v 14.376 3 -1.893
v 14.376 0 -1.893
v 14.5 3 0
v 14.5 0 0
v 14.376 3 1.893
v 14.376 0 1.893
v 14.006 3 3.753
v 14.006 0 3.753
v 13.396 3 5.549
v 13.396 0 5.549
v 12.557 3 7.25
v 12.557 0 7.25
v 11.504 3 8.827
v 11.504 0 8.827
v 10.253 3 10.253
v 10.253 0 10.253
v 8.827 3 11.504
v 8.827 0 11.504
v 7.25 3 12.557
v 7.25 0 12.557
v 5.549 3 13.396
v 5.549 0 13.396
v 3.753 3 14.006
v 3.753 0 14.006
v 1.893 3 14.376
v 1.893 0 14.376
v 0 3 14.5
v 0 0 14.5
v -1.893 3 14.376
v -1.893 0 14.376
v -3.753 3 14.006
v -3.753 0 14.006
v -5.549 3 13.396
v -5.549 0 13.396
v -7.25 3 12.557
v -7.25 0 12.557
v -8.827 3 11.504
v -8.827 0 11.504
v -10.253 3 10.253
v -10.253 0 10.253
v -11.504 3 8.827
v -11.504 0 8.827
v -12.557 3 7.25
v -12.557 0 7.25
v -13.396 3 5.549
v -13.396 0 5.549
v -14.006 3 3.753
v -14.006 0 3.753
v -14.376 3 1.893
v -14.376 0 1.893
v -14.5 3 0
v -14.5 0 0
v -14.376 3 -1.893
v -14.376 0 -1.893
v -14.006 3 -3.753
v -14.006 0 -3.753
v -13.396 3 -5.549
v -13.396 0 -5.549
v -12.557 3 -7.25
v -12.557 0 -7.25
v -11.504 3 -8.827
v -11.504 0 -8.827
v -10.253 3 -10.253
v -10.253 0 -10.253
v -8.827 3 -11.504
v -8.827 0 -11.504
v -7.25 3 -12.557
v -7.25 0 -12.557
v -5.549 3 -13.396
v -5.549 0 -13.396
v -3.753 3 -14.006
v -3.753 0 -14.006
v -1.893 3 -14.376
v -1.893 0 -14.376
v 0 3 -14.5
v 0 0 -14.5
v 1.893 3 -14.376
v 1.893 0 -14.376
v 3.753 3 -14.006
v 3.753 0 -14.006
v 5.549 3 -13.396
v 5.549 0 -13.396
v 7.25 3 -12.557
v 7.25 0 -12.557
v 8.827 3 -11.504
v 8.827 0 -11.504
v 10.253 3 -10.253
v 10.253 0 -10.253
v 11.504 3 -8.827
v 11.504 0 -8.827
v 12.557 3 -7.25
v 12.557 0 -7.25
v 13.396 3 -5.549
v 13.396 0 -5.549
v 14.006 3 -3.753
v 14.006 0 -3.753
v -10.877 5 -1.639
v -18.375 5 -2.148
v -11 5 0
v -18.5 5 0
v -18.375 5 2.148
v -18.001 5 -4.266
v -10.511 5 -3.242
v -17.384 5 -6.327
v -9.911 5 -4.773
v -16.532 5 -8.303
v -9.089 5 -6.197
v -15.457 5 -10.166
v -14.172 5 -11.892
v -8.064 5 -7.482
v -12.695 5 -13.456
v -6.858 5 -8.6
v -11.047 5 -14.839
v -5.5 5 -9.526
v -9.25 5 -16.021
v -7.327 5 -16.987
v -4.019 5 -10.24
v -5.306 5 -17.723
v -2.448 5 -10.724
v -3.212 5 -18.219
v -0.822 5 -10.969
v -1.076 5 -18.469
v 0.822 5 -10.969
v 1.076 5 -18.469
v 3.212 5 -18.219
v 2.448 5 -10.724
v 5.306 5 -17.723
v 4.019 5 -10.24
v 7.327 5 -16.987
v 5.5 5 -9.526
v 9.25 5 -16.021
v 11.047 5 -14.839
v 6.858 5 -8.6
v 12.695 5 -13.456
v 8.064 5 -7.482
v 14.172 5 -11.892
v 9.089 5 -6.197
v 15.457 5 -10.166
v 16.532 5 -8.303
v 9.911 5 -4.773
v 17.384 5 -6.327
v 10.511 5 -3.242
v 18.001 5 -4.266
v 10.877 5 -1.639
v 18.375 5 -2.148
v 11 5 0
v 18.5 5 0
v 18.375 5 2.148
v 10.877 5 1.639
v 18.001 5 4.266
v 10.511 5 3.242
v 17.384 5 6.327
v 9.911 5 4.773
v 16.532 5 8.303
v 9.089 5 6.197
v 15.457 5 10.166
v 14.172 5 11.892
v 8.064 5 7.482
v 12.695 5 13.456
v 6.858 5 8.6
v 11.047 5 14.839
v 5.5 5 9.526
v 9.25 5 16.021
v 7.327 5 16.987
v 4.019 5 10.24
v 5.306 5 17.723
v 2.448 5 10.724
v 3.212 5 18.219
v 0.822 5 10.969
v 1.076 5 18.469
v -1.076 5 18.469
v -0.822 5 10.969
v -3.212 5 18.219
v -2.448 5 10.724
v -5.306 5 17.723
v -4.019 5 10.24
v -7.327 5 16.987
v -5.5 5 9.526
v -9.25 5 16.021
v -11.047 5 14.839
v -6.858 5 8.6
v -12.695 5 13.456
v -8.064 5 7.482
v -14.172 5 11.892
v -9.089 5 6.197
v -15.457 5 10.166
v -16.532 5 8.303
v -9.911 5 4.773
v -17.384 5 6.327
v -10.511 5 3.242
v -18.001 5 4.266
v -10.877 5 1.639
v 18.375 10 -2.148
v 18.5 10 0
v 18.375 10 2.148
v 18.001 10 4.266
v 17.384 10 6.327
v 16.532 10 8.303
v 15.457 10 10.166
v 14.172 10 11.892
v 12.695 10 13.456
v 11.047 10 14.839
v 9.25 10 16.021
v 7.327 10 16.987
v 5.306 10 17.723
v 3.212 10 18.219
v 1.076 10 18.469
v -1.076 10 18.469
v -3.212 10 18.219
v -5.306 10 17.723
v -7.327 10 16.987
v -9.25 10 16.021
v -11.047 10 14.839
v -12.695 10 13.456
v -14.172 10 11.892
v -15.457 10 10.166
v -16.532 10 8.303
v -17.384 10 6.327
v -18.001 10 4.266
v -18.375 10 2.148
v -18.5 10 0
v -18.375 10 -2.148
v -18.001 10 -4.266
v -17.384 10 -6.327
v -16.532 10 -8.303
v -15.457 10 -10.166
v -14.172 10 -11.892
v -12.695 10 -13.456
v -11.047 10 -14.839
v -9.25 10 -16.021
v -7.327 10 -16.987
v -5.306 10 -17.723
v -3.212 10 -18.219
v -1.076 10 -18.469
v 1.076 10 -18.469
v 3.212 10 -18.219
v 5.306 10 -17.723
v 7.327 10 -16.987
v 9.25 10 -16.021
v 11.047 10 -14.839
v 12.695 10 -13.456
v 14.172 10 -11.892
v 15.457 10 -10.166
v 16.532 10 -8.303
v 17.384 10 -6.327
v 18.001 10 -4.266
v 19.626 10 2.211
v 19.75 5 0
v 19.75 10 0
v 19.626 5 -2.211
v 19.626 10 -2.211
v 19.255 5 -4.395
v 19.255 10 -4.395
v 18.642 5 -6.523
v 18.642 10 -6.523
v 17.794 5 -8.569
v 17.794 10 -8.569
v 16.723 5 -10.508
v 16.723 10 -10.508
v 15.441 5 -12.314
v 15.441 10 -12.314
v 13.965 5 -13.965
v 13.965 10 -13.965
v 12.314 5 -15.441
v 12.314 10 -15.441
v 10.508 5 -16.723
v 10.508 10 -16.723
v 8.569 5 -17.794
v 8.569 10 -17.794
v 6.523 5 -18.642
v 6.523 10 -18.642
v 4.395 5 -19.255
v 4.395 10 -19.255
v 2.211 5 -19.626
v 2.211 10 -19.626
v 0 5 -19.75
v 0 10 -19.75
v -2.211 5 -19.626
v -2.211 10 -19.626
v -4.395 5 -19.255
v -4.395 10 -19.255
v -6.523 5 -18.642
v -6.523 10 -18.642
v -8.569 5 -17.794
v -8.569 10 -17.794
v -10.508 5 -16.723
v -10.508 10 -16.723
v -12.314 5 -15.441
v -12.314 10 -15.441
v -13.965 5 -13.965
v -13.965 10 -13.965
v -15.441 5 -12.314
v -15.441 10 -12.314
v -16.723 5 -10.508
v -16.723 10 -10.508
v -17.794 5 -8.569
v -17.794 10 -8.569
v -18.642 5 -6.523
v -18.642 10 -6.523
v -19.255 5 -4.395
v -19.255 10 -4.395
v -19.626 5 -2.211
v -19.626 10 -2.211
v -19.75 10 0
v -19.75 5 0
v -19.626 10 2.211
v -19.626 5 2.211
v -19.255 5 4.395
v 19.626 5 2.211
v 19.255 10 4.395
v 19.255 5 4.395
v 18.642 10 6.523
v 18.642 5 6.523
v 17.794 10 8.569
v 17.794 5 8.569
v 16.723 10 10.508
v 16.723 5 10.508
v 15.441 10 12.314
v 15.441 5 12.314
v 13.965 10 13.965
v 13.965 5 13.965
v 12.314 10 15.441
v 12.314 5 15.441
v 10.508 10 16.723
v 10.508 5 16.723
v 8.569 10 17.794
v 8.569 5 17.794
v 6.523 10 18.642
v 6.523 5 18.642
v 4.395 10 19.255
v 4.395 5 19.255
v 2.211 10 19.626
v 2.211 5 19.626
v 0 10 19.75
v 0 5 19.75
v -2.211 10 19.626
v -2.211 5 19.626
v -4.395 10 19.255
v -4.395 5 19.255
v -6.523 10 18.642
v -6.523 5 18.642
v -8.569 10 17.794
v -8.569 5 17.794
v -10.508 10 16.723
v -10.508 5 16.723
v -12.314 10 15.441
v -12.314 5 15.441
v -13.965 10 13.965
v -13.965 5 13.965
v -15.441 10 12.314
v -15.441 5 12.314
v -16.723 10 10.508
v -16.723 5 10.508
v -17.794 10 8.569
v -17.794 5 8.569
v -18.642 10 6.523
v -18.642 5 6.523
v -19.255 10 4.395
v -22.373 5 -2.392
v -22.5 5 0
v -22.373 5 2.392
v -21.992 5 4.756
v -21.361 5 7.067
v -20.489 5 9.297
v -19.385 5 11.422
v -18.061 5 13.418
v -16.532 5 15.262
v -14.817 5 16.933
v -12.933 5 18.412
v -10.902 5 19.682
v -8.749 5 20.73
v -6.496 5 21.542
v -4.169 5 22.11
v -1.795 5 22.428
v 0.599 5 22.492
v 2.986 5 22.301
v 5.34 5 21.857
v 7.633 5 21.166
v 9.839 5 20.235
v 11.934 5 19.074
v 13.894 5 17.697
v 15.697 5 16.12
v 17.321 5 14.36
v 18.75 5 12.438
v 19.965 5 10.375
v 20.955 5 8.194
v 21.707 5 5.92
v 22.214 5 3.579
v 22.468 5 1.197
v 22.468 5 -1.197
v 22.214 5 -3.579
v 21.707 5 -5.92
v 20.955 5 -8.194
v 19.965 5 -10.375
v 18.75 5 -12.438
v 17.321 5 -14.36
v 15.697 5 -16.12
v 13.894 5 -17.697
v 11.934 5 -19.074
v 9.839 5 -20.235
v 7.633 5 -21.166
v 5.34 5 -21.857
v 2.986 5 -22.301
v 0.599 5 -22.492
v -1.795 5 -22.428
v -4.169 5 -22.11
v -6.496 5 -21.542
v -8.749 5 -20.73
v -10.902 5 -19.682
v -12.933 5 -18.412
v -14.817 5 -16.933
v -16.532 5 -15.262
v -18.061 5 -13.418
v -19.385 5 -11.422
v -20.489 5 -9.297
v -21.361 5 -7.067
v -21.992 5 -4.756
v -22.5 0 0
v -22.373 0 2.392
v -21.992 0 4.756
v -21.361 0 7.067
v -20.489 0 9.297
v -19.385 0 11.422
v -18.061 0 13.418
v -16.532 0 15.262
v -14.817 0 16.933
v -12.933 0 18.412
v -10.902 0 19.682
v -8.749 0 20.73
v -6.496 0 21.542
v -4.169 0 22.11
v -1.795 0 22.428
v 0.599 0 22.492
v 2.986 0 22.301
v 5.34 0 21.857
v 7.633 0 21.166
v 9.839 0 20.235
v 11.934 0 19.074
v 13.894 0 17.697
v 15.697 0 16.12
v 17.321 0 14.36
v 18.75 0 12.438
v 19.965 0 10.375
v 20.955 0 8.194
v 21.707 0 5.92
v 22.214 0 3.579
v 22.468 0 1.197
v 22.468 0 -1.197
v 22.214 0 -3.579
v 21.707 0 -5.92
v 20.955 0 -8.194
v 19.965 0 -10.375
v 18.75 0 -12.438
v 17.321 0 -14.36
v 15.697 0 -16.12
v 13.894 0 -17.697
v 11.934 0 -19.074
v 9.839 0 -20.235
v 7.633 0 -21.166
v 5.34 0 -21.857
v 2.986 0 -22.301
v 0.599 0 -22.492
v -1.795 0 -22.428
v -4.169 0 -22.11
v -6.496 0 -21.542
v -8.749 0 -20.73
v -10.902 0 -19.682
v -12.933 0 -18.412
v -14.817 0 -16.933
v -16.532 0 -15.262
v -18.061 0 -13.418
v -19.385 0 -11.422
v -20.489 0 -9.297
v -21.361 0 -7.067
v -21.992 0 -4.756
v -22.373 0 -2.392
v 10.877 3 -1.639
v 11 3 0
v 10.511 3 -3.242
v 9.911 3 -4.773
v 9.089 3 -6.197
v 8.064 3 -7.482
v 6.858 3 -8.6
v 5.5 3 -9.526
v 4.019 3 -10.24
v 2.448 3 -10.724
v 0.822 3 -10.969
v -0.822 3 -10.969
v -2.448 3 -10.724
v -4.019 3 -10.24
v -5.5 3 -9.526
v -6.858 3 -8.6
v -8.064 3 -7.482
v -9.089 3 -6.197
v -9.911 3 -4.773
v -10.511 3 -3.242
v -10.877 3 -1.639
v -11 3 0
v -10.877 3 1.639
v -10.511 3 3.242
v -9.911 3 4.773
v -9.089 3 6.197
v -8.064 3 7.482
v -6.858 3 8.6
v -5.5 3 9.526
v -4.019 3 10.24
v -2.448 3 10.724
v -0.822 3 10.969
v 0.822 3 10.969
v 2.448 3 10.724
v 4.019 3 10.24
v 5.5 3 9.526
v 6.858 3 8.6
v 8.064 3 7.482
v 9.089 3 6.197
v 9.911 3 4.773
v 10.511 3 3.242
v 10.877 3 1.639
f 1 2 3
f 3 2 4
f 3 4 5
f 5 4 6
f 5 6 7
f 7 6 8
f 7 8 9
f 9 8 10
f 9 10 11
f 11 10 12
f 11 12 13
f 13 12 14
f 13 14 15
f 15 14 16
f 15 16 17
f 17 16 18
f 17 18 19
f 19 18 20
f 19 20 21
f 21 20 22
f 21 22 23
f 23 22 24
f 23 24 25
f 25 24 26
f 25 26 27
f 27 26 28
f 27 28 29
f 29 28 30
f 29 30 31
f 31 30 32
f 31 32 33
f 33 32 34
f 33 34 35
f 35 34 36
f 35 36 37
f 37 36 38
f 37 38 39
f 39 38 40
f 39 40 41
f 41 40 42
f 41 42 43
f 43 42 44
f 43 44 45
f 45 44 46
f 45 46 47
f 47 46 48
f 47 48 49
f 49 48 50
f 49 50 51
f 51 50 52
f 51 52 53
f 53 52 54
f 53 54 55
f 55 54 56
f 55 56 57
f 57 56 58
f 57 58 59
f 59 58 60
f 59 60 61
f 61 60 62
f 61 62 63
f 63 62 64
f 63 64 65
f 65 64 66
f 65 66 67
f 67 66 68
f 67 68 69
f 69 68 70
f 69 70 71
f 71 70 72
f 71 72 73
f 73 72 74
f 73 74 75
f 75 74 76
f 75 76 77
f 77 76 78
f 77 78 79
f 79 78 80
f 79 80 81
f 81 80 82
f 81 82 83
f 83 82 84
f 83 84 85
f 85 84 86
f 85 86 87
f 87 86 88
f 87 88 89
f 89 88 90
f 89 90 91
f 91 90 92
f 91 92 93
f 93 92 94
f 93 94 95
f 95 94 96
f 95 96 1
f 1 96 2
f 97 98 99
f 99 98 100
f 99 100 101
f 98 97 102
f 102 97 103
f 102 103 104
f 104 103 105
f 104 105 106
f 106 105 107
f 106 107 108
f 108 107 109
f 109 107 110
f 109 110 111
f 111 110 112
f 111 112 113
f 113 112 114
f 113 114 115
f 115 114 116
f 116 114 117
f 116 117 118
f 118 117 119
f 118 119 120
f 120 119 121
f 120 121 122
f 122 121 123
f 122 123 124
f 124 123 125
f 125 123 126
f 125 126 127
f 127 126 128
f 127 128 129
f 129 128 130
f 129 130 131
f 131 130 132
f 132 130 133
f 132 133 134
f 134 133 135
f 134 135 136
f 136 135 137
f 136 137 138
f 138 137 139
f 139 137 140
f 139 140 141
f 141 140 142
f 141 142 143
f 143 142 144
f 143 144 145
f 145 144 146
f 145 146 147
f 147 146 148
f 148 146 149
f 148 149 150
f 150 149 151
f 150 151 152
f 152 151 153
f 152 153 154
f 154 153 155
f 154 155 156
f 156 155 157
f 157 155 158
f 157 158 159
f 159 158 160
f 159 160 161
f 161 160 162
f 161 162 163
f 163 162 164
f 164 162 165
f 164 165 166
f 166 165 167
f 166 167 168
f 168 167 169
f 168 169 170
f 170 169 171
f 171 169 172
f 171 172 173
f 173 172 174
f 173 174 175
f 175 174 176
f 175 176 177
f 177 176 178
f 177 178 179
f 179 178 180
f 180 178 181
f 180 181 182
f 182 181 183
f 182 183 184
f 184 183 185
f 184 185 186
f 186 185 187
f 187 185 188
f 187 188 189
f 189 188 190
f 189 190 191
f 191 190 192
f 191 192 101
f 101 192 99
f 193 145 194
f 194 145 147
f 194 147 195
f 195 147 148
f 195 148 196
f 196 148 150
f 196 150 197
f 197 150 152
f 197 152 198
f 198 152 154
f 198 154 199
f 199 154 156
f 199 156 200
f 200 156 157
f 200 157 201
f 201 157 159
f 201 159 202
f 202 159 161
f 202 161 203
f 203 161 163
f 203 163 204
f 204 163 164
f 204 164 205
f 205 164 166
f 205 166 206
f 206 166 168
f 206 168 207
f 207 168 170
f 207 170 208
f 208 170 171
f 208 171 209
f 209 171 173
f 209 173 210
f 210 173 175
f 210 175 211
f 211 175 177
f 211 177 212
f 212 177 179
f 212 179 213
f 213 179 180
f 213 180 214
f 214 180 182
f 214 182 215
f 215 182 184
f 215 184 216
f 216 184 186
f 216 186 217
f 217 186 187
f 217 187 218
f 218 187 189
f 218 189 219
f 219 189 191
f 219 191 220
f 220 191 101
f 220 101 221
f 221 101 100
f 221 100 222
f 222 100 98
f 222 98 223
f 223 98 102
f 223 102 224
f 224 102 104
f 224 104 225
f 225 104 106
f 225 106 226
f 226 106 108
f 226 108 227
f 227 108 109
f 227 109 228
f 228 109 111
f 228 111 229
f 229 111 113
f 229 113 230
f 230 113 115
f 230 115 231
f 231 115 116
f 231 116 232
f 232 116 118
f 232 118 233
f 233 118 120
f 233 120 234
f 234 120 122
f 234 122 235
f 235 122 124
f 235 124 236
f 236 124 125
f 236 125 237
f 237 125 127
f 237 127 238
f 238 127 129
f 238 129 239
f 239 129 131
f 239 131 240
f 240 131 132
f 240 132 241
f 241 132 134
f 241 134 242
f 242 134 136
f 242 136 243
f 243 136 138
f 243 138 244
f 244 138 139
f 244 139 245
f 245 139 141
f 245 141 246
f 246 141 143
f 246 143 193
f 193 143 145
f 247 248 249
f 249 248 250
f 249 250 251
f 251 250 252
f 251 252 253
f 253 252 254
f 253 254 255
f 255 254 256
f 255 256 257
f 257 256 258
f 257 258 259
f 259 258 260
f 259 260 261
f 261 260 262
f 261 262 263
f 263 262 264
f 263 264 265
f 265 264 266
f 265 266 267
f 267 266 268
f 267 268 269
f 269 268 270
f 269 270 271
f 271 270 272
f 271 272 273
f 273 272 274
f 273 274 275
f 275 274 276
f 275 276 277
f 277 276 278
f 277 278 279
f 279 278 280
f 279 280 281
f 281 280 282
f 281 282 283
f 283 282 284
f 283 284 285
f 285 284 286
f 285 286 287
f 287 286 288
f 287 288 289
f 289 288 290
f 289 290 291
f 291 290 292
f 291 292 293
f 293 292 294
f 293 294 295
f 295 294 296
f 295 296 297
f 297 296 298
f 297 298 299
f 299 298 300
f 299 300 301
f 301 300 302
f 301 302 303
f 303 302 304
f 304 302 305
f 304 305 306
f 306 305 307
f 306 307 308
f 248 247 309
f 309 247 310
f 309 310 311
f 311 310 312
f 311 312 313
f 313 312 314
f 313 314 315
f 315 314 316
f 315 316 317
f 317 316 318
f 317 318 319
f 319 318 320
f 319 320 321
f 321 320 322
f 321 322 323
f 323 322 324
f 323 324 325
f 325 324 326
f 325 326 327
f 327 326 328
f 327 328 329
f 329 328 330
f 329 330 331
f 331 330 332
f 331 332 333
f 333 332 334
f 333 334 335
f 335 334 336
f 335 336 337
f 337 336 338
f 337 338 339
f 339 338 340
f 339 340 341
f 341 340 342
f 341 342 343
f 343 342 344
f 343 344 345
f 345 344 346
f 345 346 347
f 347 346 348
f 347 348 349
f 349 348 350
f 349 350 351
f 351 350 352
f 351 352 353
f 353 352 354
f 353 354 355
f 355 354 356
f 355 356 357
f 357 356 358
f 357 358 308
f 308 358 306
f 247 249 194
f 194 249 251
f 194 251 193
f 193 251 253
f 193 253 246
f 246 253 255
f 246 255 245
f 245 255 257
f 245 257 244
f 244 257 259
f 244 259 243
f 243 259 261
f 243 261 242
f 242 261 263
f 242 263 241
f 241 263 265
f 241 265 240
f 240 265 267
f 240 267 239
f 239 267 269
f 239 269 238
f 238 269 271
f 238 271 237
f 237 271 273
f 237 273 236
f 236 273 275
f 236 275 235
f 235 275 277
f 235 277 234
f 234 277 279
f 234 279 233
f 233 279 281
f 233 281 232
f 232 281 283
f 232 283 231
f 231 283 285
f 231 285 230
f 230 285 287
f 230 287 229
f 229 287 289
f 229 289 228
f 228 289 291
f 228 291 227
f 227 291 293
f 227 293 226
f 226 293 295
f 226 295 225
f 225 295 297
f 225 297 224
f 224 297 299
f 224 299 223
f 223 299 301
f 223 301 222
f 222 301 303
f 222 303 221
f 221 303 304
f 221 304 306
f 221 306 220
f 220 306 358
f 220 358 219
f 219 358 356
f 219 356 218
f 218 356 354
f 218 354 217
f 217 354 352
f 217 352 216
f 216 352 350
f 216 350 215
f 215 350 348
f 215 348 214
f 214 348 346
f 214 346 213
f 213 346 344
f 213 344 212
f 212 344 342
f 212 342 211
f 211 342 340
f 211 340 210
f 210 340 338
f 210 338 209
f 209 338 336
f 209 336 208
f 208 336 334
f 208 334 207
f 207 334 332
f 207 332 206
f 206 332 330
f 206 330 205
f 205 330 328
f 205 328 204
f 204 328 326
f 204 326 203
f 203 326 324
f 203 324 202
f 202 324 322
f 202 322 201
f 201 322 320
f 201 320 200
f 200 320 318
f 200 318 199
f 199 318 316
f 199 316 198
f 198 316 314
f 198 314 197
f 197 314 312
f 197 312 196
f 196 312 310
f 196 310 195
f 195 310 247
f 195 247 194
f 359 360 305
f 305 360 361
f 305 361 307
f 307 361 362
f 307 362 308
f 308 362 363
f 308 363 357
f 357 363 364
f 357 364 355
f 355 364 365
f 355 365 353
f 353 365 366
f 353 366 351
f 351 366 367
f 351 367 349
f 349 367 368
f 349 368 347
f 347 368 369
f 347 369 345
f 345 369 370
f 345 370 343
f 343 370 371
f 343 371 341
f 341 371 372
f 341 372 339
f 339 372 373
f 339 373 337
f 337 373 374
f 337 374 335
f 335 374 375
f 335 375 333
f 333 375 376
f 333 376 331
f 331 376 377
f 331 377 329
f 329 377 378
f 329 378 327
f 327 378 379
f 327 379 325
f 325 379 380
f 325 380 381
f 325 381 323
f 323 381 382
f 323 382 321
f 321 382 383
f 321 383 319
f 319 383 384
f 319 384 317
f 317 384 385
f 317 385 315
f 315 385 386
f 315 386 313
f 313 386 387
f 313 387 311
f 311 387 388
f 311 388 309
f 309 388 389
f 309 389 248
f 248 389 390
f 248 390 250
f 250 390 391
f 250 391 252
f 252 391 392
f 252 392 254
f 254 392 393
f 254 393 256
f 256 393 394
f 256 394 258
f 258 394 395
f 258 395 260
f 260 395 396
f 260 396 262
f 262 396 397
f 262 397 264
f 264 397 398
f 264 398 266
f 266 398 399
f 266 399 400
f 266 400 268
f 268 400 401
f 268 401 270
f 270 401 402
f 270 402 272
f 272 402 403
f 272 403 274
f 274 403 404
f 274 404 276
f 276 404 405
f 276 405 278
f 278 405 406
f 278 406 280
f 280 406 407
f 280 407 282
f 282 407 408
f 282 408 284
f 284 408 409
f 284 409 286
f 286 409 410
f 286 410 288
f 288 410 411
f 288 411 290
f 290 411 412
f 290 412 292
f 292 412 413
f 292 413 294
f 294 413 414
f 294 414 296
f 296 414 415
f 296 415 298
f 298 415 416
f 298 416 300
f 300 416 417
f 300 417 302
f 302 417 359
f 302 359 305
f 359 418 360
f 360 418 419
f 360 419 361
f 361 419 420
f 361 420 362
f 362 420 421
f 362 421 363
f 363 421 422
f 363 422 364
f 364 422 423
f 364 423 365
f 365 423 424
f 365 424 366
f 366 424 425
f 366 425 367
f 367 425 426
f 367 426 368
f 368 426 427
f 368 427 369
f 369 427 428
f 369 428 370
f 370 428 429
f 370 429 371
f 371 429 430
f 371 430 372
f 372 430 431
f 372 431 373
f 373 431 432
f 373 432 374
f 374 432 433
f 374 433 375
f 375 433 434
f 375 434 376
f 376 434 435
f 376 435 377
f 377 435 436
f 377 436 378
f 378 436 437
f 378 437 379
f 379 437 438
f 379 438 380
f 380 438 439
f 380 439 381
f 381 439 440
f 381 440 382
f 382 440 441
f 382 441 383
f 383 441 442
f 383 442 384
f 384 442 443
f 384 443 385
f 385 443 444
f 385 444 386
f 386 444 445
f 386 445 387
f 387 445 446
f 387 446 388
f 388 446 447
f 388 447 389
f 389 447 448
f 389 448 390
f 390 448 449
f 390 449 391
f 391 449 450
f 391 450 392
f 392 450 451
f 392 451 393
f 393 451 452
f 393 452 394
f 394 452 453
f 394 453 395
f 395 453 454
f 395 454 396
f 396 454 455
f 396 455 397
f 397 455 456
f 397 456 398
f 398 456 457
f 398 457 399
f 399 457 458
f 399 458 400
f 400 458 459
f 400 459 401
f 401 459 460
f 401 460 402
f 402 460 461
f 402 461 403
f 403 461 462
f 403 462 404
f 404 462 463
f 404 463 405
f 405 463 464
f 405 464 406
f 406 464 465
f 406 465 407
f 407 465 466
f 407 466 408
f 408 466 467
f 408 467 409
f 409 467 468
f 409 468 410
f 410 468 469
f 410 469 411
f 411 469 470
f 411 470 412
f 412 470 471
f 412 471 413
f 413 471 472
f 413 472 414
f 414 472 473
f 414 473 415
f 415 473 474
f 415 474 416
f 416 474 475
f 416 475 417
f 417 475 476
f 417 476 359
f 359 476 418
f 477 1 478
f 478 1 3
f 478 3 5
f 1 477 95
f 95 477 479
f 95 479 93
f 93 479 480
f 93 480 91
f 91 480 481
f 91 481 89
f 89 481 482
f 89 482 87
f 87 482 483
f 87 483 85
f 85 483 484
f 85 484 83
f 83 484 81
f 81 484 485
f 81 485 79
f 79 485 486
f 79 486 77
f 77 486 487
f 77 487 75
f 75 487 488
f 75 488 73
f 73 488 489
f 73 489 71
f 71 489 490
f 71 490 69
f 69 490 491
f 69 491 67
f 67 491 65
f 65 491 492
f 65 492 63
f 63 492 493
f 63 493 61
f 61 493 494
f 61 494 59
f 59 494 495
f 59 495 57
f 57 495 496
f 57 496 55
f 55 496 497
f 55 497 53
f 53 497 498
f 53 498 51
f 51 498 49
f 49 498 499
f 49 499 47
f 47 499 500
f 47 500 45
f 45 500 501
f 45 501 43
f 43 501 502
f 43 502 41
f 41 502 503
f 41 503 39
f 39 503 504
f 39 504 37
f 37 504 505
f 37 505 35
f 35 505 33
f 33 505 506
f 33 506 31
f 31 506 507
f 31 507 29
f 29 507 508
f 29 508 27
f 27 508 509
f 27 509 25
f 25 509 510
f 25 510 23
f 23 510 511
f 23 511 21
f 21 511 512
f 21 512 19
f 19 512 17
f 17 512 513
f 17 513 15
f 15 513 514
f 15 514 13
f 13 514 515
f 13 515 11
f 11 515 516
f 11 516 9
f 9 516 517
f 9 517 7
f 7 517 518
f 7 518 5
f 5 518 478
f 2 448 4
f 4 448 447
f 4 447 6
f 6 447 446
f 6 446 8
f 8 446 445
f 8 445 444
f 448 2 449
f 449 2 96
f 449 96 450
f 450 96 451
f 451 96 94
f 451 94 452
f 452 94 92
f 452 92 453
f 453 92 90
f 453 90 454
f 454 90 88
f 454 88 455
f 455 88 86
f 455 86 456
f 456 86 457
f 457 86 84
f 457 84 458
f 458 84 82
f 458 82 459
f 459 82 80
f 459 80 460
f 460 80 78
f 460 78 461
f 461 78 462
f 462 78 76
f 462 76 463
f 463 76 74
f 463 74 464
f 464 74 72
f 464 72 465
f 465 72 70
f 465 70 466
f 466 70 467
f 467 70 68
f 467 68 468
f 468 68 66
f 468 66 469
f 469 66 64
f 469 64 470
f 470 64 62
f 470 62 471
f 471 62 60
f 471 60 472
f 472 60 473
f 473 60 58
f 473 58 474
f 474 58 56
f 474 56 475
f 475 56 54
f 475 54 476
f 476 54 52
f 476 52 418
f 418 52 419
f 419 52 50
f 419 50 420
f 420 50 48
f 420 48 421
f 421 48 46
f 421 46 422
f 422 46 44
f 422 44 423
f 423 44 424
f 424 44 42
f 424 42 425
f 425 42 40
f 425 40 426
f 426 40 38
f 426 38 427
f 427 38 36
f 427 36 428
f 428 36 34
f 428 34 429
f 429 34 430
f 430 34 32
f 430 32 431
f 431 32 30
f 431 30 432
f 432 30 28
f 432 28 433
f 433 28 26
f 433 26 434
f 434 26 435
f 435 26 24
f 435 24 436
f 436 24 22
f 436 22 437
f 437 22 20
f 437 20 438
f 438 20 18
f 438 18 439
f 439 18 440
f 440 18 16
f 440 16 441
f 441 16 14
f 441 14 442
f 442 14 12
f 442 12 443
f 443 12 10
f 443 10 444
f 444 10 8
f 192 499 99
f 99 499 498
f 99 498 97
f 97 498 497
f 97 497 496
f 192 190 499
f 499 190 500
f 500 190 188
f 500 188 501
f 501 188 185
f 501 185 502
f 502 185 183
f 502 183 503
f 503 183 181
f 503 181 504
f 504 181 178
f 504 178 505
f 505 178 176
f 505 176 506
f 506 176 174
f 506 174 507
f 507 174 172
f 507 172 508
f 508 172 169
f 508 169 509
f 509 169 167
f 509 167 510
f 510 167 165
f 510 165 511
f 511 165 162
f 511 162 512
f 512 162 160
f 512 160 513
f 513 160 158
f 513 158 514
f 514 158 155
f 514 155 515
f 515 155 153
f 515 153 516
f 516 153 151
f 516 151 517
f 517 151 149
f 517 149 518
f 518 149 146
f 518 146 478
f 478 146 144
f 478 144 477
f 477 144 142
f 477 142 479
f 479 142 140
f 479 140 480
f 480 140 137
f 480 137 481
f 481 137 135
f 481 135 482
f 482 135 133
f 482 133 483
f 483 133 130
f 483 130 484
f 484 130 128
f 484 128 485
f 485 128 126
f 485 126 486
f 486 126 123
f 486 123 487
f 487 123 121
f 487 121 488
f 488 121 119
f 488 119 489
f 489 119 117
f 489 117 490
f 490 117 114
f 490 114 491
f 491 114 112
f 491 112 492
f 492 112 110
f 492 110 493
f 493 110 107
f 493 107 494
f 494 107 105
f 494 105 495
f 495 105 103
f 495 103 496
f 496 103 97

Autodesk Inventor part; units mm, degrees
ref_plane "YZ Plane" through (0, 0, 0) normal (1, 0, 0) x (0, 1, 0)
ref_plane "XZ Plane" through (0, 0, 0) normal (0, 1, 0) x (-1, 0, 0)
ref_plane "XY Plane" through (0, 0, 0) normal (0, 0, 1) x (1, 0, 0)
sketch "Sketch1" plane through (0, 0, 0) normal (0, 1, 0) x (-1, 0, 0)
  circle A0 centre (0, 0) radius 22.5
  dimension "d0" = 45
extrude "Extrusion1" add sketch "Sketch1" along normal blind 5
sketch "Sketch2" plane through (0, 5, 0) normal (0, 1, 0) x (1, 0, 0)
  circle A0 centre (0, 0) radius 19.75
  circle A1 centre (0, 0) radius 18.5
  dimension "d3" = 39.5
  dimension "d4" = 37
extrude "Extrusion2" add sketch "Sketch2" along normal blind 5
sketch "Sketch3" plane through (0, 0, 0) normal (0, -1, 0) x (1, 0, 0)
  circle A0 centre (0, 0) radius 14.5
  dimension "d7" = 29
extrude "Extrusion3" cut sketch "Sketch3" against normal blind 3
sketch "Sketch4" plane through (0, 3, 0) normal (0, -1, 0) x (1, 0, 0)
  circle A0 centre (0, 0) radius 11
  dimension "d10" = 22
extrude "Extrusion4" cut sketch "Sketch4" against normal blind 5
properties part number "Button_Holder"
